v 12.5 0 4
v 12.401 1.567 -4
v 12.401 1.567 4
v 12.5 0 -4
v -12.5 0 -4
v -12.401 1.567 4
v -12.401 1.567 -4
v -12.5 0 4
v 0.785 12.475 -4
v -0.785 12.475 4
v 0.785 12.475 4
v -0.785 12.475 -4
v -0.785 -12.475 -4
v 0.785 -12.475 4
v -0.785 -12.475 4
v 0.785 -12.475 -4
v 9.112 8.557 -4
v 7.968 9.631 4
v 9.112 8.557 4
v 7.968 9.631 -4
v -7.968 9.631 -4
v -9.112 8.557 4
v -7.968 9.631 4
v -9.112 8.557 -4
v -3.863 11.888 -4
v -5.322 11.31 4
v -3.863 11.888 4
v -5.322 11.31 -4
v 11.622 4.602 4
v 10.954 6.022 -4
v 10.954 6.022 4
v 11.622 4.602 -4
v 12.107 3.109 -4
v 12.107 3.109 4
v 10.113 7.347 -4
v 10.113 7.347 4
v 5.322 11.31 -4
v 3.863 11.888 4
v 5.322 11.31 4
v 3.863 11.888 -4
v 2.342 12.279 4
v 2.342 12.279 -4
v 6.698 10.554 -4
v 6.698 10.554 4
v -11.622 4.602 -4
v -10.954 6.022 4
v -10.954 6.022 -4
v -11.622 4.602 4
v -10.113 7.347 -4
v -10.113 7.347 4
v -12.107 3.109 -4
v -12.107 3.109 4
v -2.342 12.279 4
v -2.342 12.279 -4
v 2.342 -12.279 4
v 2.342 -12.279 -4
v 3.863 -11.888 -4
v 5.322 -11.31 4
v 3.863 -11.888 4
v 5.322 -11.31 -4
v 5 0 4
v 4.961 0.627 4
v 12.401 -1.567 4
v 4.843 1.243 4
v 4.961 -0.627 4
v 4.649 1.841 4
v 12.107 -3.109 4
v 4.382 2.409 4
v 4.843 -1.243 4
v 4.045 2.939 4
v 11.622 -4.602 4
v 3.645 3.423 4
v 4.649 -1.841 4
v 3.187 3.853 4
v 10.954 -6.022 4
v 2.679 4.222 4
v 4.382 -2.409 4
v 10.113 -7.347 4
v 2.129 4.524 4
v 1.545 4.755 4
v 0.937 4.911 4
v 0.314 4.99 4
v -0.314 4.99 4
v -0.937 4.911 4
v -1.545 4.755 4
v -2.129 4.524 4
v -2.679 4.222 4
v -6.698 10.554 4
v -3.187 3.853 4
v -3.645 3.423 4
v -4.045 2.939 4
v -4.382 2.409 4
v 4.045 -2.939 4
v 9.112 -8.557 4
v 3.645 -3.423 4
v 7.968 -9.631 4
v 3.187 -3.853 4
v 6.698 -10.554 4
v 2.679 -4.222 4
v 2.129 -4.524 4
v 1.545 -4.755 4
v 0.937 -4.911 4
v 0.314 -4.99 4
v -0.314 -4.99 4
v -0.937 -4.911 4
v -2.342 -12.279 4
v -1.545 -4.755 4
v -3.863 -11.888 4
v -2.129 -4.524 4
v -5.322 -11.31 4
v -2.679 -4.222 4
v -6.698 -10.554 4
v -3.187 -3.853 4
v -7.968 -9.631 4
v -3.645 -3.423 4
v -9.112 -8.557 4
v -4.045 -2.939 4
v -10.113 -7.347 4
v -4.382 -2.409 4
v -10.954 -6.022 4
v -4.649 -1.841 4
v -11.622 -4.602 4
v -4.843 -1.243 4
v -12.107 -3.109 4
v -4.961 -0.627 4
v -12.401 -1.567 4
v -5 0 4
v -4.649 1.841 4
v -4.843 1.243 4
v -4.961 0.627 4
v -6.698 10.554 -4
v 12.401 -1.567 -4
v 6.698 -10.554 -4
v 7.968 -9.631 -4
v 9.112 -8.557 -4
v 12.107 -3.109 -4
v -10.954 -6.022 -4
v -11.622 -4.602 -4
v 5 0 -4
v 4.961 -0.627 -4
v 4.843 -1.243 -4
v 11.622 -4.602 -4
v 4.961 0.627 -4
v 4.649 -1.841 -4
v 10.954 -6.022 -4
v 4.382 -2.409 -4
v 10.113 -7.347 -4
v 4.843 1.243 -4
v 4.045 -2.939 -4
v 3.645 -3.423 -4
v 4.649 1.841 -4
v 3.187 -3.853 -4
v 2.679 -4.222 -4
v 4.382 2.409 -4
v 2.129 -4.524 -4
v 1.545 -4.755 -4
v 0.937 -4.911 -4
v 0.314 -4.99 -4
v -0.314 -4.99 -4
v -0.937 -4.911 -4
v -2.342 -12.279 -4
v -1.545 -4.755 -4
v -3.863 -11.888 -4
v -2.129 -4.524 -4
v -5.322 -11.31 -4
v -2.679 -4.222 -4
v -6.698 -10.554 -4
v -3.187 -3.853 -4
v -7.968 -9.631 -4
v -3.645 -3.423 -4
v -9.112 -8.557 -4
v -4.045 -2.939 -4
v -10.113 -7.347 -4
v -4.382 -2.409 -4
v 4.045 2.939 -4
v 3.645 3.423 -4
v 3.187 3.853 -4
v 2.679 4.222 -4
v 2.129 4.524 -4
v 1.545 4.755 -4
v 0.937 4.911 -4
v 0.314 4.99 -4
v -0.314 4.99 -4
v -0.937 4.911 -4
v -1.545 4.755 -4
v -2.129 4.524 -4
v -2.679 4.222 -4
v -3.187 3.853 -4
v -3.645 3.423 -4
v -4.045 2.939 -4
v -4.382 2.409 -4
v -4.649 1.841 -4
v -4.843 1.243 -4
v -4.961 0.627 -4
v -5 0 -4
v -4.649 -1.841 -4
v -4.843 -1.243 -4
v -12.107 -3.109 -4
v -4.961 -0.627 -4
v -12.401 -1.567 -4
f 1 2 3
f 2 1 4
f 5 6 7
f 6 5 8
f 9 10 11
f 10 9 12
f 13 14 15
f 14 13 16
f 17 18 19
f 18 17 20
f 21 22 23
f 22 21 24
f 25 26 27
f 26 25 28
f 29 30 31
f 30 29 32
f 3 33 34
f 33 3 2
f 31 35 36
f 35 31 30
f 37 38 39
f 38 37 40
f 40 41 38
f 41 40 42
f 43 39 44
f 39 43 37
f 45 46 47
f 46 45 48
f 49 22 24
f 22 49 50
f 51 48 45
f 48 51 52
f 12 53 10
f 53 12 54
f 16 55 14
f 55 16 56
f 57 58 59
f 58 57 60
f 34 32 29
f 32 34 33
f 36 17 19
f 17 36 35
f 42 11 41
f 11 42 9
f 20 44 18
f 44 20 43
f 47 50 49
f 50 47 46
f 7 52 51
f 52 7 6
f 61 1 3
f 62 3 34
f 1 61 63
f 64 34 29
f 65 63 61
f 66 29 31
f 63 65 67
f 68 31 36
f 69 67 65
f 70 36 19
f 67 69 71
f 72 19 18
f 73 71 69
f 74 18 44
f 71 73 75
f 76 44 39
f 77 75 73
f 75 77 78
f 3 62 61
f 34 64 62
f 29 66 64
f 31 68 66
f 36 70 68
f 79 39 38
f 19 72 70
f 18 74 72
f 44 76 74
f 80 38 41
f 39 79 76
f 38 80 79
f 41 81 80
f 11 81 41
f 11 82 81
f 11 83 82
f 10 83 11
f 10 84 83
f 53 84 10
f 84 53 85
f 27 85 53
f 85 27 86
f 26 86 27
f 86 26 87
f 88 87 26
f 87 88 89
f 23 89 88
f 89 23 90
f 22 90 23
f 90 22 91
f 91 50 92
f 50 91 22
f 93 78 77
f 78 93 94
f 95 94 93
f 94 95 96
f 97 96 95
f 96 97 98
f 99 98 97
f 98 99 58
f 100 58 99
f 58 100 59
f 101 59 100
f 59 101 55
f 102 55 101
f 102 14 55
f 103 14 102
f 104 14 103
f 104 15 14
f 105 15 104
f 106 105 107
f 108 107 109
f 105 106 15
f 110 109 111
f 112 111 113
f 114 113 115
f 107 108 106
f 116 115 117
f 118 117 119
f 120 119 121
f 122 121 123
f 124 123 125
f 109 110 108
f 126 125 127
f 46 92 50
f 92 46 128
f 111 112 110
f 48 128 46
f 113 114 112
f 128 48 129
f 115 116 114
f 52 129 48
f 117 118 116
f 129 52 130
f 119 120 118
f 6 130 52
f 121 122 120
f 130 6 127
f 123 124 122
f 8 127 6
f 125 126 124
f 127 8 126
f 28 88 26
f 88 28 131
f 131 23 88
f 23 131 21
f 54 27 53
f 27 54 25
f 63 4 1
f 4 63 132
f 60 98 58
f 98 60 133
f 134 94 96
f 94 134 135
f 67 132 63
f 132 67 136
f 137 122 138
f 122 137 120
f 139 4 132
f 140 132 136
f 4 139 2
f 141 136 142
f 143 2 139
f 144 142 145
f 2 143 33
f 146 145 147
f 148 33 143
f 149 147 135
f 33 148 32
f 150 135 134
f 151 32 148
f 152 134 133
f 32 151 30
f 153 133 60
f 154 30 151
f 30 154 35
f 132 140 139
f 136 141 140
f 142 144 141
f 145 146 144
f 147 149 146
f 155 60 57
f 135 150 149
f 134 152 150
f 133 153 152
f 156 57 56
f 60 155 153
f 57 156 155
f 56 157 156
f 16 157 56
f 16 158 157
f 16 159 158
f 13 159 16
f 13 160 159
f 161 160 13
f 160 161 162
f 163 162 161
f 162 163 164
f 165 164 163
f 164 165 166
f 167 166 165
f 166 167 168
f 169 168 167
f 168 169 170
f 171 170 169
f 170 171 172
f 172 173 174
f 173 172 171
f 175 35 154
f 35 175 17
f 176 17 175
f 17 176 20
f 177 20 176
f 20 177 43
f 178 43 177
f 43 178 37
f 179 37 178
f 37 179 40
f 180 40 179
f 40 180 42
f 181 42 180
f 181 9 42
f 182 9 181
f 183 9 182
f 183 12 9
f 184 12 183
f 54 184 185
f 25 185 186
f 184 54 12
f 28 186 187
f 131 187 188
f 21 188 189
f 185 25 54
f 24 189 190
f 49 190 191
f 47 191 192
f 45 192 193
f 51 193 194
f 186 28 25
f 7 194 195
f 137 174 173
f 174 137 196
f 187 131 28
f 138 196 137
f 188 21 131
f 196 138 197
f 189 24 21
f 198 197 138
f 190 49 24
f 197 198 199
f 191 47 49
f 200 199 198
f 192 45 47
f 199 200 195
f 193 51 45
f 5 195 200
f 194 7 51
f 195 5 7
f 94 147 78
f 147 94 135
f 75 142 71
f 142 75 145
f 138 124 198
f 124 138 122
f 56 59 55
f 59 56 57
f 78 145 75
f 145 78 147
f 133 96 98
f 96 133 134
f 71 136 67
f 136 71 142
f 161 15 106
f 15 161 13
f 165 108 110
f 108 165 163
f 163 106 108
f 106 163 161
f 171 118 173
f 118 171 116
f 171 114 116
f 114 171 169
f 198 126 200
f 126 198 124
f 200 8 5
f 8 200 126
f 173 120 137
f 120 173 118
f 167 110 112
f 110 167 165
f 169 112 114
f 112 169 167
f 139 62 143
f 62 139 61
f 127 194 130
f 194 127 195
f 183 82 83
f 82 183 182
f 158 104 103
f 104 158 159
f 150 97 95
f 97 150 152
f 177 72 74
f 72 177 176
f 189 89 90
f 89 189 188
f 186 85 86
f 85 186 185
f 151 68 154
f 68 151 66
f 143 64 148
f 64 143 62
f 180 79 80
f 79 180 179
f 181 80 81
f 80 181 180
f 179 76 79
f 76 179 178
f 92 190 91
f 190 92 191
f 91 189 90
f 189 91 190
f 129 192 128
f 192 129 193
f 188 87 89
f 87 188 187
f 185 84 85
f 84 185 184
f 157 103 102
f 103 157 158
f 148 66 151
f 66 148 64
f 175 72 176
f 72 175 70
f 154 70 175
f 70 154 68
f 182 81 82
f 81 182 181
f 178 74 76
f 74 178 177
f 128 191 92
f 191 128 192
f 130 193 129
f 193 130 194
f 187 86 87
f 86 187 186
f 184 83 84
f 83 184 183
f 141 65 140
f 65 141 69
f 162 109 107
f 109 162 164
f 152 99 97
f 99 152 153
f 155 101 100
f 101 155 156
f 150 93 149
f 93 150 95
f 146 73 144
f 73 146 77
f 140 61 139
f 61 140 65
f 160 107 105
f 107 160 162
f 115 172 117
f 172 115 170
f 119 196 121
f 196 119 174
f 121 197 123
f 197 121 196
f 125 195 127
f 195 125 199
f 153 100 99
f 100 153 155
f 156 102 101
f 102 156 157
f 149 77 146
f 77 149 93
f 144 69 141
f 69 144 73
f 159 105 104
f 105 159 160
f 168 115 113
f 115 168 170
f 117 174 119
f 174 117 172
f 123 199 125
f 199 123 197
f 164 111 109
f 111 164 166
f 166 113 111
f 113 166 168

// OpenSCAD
$fn = 50;


difference() {
	union() {
		translate(v = [0, 0, -4.0000000000]) {
			cylinder(h = 8, r = 12.5000000000);
		}
	}
	union() {
		translate(v = [0, 0, -100.0000000000]) {
			cylinder(h = 200, r = 5);
		}
	}
}
